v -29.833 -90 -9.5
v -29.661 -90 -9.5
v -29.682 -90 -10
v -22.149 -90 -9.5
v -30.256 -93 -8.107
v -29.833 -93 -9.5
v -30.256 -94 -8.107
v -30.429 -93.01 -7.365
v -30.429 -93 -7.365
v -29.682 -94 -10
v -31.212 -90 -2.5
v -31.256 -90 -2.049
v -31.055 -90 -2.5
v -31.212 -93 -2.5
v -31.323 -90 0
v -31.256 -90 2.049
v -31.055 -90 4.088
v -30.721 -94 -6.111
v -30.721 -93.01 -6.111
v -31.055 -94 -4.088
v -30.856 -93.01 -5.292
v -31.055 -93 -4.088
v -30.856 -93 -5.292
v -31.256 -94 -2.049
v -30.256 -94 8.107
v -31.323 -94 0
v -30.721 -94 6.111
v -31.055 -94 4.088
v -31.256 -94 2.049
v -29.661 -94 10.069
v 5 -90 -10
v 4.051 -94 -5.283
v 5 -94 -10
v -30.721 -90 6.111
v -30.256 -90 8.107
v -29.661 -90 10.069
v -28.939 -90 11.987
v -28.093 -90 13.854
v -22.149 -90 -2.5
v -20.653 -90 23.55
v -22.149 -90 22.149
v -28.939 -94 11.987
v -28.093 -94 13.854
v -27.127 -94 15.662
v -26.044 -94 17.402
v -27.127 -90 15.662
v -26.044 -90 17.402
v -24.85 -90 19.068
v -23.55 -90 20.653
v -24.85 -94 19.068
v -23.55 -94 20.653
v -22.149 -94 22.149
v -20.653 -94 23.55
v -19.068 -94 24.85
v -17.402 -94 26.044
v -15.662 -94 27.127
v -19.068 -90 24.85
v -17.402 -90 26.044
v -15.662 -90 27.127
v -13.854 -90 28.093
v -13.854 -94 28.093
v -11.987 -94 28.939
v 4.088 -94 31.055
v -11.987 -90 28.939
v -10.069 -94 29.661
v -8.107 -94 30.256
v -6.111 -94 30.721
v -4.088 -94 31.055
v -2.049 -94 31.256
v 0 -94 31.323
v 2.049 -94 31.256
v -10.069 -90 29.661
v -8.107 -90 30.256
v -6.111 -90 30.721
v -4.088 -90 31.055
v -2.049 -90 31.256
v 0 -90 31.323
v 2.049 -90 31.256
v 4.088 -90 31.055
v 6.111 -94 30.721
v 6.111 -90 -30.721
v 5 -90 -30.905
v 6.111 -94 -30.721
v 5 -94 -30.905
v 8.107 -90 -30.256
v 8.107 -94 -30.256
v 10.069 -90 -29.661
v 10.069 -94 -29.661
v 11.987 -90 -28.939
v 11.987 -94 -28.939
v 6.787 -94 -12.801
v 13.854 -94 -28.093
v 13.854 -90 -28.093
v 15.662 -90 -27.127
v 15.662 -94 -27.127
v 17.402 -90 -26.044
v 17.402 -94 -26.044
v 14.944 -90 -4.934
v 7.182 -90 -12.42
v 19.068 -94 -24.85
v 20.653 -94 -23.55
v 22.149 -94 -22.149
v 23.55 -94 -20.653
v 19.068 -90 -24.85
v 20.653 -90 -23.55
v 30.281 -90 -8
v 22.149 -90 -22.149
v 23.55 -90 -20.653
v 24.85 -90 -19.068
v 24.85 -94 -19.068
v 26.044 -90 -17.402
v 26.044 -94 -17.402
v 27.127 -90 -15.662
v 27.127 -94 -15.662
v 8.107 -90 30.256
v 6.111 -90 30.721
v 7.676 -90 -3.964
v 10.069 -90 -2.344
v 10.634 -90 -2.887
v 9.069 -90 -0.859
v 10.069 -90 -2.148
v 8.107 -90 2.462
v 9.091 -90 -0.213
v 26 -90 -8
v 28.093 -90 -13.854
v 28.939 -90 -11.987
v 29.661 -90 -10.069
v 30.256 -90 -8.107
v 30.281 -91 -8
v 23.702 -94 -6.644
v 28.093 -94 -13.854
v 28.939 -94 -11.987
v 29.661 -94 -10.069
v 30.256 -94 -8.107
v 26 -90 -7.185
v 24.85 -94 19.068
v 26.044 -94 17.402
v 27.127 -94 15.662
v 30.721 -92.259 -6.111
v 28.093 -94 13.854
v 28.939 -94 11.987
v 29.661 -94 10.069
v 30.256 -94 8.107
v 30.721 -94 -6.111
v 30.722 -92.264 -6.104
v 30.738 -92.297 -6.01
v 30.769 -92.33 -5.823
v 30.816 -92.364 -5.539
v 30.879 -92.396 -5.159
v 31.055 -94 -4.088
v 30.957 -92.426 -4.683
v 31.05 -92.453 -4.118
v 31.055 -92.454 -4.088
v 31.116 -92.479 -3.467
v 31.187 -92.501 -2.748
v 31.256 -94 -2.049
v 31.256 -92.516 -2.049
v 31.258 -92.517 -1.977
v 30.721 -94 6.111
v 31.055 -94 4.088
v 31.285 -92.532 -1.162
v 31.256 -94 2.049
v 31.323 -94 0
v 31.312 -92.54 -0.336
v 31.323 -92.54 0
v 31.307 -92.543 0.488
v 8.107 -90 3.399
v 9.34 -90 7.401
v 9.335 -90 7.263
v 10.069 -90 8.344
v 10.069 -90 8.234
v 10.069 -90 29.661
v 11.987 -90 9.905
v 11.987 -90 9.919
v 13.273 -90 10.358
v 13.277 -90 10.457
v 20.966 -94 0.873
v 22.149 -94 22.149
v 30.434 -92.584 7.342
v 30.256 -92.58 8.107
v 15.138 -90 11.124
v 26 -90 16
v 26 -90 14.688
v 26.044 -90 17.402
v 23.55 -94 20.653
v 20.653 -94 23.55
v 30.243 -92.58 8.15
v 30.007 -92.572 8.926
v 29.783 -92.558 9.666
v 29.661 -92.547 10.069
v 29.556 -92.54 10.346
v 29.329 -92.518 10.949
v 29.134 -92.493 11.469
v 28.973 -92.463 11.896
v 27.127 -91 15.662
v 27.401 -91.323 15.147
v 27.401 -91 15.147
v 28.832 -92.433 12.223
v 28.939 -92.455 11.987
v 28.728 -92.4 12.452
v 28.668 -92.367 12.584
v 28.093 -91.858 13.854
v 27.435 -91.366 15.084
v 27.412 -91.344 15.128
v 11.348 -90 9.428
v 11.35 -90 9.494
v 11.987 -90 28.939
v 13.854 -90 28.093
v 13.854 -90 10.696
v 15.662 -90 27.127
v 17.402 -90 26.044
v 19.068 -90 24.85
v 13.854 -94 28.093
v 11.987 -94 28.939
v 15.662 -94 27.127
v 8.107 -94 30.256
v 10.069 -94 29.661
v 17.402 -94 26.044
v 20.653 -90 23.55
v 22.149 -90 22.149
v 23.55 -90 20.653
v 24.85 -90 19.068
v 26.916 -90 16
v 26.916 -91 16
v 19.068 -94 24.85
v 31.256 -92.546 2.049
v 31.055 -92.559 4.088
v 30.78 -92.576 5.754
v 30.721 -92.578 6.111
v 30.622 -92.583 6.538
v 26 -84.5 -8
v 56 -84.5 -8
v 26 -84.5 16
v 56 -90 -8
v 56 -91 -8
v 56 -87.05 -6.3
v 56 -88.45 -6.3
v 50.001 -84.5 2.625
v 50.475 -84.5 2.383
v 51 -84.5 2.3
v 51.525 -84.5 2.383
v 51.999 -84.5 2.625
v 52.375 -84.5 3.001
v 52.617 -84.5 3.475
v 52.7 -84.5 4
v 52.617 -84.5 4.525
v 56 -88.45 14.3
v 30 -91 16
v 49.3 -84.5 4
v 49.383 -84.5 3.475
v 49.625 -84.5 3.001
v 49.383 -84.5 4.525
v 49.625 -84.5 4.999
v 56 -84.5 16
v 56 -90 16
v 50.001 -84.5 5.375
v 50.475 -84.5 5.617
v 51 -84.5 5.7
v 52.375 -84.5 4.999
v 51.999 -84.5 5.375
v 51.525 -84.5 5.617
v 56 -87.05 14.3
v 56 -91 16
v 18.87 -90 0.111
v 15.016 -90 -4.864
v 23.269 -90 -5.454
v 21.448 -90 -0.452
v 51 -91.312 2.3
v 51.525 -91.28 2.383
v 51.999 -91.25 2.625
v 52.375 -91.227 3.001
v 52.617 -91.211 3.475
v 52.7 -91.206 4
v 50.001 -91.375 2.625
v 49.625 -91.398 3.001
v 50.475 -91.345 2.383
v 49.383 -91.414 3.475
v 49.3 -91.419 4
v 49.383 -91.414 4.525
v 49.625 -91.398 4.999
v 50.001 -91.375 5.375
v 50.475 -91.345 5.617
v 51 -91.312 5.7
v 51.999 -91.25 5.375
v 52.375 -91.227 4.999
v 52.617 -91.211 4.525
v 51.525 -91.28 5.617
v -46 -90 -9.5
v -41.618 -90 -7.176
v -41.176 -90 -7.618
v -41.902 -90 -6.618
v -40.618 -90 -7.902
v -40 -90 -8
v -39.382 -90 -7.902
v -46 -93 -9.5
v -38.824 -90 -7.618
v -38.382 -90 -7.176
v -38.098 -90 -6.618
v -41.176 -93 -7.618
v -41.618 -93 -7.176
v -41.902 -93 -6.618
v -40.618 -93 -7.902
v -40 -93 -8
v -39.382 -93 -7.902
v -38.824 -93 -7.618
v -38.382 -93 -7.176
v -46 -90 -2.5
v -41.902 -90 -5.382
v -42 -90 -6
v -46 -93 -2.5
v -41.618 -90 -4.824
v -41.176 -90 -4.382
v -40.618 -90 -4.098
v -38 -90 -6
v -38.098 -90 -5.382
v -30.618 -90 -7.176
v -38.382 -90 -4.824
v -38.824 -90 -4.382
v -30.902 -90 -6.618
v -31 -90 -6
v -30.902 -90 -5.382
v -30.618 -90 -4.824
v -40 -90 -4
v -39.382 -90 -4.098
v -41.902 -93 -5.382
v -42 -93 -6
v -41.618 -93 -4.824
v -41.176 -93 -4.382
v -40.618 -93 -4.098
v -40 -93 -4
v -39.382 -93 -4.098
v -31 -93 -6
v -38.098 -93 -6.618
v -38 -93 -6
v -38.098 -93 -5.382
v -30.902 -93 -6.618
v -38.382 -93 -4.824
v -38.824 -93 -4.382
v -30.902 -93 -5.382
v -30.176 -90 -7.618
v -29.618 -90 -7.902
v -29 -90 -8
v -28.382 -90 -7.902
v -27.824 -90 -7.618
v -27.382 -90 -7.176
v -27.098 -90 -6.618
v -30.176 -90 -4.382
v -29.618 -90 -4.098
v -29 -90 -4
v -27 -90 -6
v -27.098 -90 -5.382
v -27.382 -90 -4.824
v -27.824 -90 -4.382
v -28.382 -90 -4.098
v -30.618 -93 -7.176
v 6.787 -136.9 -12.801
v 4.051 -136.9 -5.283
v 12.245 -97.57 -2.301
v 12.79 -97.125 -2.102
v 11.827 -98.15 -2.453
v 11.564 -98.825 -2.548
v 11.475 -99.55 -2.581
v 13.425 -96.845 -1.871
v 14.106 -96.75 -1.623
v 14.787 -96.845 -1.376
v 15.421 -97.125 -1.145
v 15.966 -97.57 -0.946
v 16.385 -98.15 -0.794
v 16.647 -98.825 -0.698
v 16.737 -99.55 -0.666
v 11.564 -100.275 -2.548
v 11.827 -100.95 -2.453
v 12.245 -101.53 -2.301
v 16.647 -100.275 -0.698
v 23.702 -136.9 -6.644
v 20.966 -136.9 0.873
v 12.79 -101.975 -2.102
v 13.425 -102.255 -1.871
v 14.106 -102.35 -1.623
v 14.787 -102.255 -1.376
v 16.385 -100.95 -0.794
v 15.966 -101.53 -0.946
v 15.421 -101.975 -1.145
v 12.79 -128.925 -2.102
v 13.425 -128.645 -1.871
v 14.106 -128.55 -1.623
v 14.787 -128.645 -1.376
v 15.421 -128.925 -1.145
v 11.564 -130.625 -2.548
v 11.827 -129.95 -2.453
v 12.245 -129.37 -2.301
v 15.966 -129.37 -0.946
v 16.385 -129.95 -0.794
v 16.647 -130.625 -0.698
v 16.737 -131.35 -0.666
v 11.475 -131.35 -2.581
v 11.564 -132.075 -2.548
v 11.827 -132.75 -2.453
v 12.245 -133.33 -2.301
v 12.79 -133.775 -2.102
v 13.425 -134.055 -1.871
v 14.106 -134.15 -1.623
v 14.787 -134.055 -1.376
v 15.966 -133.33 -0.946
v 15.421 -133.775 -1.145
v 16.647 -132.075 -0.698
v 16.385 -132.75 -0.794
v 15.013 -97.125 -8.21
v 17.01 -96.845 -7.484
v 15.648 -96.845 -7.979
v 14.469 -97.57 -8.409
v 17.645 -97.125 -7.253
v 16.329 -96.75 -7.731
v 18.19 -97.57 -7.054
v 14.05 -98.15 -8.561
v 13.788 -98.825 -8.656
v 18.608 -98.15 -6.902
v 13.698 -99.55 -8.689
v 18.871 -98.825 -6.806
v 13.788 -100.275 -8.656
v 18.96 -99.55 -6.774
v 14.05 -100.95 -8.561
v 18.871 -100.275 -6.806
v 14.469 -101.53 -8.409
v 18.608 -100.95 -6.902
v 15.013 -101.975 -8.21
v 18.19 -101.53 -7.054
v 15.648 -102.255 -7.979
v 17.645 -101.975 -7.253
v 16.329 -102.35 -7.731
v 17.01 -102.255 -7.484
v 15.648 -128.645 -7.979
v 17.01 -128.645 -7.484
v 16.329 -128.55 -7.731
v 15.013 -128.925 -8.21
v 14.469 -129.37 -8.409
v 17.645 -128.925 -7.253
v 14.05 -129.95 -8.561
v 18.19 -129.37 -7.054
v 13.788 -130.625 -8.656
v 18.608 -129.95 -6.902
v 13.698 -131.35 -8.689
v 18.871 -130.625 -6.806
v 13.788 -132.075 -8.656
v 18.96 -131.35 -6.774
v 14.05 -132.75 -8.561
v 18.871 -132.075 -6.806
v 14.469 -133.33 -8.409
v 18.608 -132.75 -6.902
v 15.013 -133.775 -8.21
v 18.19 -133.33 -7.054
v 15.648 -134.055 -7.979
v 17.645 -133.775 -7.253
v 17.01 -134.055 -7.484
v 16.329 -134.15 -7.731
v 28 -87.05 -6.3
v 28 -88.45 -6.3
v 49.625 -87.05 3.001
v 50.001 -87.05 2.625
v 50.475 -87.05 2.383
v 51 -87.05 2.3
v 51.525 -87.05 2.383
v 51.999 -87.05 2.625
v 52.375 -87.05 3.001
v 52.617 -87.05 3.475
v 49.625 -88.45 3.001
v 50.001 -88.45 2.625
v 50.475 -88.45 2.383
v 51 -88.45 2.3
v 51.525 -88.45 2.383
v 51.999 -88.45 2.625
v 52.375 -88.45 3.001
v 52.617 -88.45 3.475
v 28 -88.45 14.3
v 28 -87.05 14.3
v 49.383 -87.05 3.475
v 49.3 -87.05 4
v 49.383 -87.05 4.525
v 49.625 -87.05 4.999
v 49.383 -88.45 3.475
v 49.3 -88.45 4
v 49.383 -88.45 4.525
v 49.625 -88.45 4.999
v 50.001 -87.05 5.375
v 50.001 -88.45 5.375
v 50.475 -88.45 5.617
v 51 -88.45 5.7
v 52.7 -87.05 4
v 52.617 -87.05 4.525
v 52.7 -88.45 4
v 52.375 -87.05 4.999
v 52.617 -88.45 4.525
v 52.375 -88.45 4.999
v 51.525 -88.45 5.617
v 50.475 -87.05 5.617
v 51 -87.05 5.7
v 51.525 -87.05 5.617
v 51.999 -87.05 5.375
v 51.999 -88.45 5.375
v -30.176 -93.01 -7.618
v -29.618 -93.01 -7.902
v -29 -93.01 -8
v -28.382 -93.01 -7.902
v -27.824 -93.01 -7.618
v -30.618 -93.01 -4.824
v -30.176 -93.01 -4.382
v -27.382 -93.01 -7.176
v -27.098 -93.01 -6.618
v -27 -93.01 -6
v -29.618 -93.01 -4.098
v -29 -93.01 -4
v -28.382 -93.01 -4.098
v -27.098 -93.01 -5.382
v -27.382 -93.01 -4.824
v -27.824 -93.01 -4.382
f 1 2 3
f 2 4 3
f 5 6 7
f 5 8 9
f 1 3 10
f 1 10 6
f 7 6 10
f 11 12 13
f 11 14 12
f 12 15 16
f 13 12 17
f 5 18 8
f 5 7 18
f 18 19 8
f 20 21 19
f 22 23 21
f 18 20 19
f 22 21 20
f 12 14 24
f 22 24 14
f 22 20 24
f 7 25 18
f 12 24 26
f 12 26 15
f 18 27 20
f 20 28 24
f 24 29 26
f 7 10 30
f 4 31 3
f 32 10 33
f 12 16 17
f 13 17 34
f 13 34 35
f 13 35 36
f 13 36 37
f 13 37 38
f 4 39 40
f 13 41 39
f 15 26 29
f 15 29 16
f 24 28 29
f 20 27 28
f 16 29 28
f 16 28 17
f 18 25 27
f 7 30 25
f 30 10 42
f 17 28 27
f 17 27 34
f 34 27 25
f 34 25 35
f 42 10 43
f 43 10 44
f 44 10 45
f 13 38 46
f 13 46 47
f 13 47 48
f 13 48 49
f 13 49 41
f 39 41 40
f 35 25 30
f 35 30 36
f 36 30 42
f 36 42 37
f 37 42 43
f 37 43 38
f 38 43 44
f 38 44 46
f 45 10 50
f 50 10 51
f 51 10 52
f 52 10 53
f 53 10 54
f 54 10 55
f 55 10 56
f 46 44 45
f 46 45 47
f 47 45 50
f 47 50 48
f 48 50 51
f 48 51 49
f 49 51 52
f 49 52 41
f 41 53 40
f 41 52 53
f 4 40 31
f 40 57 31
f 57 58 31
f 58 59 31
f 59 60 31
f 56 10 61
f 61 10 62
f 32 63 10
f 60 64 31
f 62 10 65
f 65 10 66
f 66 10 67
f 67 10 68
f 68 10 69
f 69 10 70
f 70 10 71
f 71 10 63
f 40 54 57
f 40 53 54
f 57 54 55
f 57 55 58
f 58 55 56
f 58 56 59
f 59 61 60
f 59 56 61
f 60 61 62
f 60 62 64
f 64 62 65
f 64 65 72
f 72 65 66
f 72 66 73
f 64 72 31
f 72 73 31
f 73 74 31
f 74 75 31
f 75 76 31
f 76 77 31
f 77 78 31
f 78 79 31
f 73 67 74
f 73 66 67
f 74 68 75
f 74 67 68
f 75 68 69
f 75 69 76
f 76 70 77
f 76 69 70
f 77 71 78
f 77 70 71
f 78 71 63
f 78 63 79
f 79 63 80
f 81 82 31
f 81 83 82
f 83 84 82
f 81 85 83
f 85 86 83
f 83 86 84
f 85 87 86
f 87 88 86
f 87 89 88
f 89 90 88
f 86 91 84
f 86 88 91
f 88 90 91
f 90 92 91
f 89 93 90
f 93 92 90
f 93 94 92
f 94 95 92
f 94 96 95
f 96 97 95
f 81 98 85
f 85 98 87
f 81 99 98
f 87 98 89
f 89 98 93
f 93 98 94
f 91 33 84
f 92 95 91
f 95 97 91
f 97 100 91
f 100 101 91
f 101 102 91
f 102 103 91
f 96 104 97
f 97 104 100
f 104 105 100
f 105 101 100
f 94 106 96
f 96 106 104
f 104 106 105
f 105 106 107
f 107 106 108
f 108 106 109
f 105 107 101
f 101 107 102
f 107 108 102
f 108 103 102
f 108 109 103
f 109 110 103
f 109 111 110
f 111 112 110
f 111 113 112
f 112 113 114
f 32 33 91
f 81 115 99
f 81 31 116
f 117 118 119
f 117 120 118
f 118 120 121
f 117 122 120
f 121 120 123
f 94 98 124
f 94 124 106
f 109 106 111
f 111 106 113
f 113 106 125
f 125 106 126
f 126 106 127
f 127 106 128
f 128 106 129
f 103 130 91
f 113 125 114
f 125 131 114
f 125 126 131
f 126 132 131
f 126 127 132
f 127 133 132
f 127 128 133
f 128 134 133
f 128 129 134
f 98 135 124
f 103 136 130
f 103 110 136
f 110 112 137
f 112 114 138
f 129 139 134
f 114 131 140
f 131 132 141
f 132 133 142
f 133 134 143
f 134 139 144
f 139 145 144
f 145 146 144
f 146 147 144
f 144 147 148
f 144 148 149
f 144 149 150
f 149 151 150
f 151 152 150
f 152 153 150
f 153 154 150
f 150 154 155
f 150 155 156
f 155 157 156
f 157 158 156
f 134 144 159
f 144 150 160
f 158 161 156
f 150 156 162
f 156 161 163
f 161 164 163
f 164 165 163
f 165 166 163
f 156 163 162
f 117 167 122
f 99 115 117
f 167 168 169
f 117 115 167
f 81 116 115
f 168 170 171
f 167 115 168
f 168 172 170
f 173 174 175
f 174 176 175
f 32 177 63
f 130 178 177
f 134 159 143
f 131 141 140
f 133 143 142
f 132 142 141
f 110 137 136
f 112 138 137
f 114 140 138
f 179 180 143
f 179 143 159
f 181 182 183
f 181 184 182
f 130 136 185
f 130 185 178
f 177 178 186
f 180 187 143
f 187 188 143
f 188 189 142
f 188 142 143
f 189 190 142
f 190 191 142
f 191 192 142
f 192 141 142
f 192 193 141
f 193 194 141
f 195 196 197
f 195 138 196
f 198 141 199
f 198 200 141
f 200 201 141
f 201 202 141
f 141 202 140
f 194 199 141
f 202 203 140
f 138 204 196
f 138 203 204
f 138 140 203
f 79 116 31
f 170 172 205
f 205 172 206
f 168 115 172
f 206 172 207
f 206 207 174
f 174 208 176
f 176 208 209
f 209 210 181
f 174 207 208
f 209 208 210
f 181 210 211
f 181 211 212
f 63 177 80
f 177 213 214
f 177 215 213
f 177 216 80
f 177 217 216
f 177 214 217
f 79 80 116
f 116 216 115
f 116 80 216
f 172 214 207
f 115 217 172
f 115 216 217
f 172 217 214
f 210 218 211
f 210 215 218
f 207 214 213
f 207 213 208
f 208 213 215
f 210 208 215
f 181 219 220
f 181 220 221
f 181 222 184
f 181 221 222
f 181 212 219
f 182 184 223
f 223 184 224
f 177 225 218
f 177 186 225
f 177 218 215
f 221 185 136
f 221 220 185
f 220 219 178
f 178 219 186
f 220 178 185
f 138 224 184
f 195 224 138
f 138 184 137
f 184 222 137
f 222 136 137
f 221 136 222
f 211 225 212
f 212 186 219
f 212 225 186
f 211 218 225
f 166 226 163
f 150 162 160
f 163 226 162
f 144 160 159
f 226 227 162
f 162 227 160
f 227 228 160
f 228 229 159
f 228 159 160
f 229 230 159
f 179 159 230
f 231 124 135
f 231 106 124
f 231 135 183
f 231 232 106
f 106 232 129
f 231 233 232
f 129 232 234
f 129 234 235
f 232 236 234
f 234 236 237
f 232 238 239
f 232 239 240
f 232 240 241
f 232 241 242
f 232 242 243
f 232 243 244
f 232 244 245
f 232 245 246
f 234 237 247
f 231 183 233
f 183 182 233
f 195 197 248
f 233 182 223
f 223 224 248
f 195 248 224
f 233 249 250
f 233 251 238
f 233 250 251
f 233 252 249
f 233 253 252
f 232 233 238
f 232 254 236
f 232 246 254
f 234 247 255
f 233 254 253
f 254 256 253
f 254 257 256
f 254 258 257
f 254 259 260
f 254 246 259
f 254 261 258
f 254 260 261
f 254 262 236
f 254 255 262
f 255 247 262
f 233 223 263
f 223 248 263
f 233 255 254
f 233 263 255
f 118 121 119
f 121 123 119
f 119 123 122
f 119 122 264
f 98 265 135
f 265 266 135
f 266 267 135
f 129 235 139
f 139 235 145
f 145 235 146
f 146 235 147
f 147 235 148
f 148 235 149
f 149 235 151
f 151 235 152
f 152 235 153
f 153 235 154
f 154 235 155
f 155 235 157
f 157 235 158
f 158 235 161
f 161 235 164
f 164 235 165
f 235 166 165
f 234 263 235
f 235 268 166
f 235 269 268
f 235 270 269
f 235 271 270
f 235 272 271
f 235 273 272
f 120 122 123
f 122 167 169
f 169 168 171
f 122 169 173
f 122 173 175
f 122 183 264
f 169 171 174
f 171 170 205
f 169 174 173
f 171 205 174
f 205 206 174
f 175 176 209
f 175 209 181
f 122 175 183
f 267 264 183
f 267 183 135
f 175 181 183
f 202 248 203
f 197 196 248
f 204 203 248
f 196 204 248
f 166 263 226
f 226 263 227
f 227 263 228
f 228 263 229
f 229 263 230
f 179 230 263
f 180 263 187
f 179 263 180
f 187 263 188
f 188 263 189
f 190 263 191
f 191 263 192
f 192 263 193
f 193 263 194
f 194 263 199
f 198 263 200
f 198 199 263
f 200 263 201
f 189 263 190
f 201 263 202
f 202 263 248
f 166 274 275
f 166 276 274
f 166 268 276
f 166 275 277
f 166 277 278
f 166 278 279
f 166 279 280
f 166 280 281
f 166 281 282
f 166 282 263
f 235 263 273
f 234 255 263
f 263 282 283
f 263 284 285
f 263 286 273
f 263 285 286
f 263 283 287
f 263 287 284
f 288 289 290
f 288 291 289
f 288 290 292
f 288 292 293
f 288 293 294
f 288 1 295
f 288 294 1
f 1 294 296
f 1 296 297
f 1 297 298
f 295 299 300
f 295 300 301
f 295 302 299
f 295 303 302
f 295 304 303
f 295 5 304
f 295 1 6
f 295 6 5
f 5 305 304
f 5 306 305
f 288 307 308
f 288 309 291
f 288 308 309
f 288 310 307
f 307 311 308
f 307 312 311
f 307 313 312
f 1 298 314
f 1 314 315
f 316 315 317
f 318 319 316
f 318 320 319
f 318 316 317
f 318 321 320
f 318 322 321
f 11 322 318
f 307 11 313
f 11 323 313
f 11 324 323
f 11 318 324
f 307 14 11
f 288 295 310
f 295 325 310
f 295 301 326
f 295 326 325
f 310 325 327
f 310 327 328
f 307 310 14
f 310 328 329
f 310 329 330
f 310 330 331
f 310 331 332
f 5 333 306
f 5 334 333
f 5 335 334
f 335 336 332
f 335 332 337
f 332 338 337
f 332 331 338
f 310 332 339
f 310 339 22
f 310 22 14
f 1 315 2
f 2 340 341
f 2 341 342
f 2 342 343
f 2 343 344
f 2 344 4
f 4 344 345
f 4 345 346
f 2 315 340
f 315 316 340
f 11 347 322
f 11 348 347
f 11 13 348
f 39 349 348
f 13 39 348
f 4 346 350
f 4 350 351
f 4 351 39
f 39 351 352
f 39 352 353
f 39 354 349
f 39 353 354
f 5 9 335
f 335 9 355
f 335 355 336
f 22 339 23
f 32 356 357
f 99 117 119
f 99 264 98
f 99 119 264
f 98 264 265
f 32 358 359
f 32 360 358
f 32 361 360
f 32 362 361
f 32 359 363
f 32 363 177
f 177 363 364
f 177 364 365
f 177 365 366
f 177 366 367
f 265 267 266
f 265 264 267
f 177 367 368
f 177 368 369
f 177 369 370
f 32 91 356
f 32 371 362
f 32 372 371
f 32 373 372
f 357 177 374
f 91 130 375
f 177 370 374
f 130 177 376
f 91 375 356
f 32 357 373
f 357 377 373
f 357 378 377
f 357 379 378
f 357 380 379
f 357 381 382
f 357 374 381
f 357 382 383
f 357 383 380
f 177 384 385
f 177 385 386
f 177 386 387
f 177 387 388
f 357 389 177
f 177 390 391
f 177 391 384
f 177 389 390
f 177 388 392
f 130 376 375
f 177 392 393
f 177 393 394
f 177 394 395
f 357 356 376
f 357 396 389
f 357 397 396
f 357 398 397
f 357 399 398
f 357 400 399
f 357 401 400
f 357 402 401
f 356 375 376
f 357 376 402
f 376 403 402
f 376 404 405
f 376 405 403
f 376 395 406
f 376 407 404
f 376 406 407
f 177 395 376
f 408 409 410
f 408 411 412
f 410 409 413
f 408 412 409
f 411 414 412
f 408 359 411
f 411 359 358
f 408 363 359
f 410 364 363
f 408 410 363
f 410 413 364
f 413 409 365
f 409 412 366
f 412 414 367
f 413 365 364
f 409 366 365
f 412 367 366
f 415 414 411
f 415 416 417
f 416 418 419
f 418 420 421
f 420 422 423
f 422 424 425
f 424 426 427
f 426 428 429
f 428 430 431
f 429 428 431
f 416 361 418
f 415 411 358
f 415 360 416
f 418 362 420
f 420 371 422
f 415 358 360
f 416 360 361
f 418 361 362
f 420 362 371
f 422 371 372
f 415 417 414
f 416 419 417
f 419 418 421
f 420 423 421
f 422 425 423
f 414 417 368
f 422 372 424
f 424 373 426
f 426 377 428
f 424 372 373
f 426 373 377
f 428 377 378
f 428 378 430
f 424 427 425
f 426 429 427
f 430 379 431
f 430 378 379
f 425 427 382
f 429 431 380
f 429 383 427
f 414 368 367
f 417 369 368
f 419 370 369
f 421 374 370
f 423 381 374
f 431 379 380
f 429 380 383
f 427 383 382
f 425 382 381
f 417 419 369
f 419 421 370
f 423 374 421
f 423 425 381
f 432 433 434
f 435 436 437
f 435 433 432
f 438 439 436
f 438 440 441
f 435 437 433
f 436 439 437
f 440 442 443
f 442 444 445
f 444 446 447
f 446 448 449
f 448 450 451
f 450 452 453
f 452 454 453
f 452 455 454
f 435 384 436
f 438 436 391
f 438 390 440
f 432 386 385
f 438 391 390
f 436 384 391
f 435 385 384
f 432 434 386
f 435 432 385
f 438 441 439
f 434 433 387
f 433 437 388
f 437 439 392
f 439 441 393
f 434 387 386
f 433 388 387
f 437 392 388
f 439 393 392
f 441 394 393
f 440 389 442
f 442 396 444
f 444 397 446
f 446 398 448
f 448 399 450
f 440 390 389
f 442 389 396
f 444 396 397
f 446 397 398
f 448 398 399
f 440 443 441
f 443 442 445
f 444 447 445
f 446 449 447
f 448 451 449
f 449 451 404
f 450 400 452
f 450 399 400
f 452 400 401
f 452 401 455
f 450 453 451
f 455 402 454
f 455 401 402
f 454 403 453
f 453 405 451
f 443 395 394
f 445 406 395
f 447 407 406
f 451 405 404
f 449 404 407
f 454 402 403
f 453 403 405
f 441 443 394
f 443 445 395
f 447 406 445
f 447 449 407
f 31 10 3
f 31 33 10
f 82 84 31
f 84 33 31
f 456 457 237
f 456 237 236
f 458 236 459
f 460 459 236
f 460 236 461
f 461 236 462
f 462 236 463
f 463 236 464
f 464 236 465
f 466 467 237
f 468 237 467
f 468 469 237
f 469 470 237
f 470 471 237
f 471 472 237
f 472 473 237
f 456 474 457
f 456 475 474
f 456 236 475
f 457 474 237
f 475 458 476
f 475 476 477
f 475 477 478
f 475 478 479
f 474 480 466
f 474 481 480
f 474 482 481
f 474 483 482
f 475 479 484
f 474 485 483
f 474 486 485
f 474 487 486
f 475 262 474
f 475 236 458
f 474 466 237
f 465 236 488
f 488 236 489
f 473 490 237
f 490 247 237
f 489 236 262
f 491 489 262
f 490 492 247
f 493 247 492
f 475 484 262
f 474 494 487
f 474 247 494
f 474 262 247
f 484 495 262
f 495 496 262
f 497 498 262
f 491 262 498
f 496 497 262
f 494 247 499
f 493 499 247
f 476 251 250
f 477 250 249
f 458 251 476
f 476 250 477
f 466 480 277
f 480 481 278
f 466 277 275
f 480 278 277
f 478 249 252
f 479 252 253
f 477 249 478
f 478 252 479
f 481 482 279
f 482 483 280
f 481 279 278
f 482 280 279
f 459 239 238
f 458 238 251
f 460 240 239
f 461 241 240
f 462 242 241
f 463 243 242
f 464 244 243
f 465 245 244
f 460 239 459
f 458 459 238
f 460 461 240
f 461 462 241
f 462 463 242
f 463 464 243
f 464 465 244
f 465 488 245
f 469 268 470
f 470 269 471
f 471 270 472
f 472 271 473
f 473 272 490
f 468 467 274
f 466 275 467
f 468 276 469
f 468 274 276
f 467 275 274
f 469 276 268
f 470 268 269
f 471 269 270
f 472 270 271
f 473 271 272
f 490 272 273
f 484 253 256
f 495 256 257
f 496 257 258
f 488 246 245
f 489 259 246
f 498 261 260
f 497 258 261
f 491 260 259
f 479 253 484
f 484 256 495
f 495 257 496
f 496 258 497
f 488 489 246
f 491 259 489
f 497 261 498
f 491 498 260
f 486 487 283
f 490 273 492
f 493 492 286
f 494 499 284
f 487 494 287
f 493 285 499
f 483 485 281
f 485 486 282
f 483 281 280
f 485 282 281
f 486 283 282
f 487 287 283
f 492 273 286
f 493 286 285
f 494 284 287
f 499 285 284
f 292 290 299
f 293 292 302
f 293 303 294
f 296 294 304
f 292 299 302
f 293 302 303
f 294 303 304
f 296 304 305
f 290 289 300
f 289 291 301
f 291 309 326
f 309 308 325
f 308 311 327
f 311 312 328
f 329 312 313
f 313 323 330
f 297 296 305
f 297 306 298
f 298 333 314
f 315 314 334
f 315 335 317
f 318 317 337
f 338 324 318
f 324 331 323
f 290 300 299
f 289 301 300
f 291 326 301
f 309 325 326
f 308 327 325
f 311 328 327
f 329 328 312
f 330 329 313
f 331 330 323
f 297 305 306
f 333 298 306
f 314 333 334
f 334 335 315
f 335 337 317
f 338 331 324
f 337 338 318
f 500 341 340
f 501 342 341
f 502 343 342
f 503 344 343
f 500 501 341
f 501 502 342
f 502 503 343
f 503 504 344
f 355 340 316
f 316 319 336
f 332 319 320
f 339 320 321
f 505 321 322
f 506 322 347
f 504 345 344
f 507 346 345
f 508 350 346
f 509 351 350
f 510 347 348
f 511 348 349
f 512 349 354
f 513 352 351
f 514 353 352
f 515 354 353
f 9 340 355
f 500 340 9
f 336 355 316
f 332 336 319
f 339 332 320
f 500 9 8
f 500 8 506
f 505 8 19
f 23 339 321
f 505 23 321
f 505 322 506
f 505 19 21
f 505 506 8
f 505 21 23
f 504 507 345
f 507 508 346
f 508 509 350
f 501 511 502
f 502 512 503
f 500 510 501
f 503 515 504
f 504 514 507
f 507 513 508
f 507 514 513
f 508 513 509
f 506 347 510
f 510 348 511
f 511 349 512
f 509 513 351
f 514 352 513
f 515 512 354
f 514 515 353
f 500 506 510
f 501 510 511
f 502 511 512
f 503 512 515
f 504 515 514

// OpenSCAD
// H01R_hub_plate  (qty 1; frame: H; MJF PA12; print service OK)
// GENERATED by gen_halo_stl.py from halo_parts.py. Change numbers in halo_params.scad.
// Every dimension below is an expression of the names in halo_params.scad.
include <../halo_params.scad>

rotate([90, 0, 0]) {
    difference() {
        union() {
            translate([0, 0, Y_SIDE_IN]) {
                cylinder(h = SIDE_T, r = R_HUBDISC, center = false, $fn = 96);
            }
            translate([26, BAND_Z_SIDE - 12, Y_SIDE_IN - 5.5]) {
                cube([30, BAND_Z_SIDE + 12 - (BAND_Z_SIDE - 12), Y_SIDE_IN + 1 - (Y_SIDE_IN - 5.5)], center = false);
            }
            hull() {
                translate([16, 3, Y_SIDE_IN]) {
                    cylinder(h = STOP_RING_T, r = 8, center = false, $fn = 48);
                }
                translate([30, BAND_Z_SIDE - 12, Y_SIDE_IN]) {
                    cube([26, BAND_Z_SIDE + 12 - (BAND_Z_SIDE - 12), Y_SIDE_IN + 1 - Y_SIDE_IN], center = false);
                }
            }
            translate([-46, -9.5, Y_SIDE_IN]) {
                cube([24, 7, Y_SIDE_IN + STOP_RING_T - Y_SIDE_IN], center = false);
            }
            rotate([0, 0, TH_B]) {
                translate([HINGE_H, 2, Y_SIDE_IN]) {
                    cube([HINGE_H + HINGE_SEAT_T - HINGE_H, R_LEAF + 1.75 - 2, Y_HINGE1 - Y_SIDE_IN], center = false);
                }
            }
        }
        translate([-60, -70, Y_SIDE_IN - 7]) {
            cube([65, EAR_CUT_Z - -70, Y_F1 + 0.5 - (Y_SIDE_IN - 7)], center = false);
        }
        rotate([0, 0, TH_B]) {
            translate([HINGE_H - 0.01, HINGE_STUD_X, (Y_HINGE0 + Y_HINGE1) / 2 + -1 * HINGE_STUD_Y]) {
                rotate([0, 90, 0]) {
                    cylinder(h = M4_INS_L + 0.01, r = M4_INS_D / 2, center = false, $fn = 24);
                }
            }
        }
        rotate([0, 0, TH_B]) {
            translate([HINGE_H - 0.01, HINGE_STUD_X, (Y_HINGE0 + Y_HINGE1) / 2 + 1 * HINGE_STUD_Y]) {
                rotate([0, 90, 0]) {
                    cylinder(h = M4_INS_L + 0.01, r = M4_INS_D / 2, center = false, $fn = 24);
                }
            }
        }
        translate([28, BAND_Z_SIDE - 10.3, Y_SIDE_IN - 2.25 - 0.7]) {
            cube([28.1, BAND_Z_SIDE + 10.3 - (BAND_Z_SIDE - 10.3), Y_SIDE_IN - 2.25 + 0.7 - (Y_SIDE_IN - 2.25 - 0.7)], center = false);
        }
        translate([51, BAND_Z_SIDE, Y_SIDE_IN - 7]) {
            cylinder(h = 10, r = M3_CLEAR / 2, center = false, $fn = 20);
        }
        translate([-40, -6, Y_SIDE_IN - 0.01]) {
            cylinder(h = STOP_RING_T + 0.02, r = M3_INS_D / 2, center = false, $fn = 20);
        }
        translate([-29, -6, Y_SIDE_IN - 0.01]) {
            cylinder(h = STOP_RING_T + 0.02, r = M3_INS_D / 2, center = false, $fn = 20);
        }
    }
}
